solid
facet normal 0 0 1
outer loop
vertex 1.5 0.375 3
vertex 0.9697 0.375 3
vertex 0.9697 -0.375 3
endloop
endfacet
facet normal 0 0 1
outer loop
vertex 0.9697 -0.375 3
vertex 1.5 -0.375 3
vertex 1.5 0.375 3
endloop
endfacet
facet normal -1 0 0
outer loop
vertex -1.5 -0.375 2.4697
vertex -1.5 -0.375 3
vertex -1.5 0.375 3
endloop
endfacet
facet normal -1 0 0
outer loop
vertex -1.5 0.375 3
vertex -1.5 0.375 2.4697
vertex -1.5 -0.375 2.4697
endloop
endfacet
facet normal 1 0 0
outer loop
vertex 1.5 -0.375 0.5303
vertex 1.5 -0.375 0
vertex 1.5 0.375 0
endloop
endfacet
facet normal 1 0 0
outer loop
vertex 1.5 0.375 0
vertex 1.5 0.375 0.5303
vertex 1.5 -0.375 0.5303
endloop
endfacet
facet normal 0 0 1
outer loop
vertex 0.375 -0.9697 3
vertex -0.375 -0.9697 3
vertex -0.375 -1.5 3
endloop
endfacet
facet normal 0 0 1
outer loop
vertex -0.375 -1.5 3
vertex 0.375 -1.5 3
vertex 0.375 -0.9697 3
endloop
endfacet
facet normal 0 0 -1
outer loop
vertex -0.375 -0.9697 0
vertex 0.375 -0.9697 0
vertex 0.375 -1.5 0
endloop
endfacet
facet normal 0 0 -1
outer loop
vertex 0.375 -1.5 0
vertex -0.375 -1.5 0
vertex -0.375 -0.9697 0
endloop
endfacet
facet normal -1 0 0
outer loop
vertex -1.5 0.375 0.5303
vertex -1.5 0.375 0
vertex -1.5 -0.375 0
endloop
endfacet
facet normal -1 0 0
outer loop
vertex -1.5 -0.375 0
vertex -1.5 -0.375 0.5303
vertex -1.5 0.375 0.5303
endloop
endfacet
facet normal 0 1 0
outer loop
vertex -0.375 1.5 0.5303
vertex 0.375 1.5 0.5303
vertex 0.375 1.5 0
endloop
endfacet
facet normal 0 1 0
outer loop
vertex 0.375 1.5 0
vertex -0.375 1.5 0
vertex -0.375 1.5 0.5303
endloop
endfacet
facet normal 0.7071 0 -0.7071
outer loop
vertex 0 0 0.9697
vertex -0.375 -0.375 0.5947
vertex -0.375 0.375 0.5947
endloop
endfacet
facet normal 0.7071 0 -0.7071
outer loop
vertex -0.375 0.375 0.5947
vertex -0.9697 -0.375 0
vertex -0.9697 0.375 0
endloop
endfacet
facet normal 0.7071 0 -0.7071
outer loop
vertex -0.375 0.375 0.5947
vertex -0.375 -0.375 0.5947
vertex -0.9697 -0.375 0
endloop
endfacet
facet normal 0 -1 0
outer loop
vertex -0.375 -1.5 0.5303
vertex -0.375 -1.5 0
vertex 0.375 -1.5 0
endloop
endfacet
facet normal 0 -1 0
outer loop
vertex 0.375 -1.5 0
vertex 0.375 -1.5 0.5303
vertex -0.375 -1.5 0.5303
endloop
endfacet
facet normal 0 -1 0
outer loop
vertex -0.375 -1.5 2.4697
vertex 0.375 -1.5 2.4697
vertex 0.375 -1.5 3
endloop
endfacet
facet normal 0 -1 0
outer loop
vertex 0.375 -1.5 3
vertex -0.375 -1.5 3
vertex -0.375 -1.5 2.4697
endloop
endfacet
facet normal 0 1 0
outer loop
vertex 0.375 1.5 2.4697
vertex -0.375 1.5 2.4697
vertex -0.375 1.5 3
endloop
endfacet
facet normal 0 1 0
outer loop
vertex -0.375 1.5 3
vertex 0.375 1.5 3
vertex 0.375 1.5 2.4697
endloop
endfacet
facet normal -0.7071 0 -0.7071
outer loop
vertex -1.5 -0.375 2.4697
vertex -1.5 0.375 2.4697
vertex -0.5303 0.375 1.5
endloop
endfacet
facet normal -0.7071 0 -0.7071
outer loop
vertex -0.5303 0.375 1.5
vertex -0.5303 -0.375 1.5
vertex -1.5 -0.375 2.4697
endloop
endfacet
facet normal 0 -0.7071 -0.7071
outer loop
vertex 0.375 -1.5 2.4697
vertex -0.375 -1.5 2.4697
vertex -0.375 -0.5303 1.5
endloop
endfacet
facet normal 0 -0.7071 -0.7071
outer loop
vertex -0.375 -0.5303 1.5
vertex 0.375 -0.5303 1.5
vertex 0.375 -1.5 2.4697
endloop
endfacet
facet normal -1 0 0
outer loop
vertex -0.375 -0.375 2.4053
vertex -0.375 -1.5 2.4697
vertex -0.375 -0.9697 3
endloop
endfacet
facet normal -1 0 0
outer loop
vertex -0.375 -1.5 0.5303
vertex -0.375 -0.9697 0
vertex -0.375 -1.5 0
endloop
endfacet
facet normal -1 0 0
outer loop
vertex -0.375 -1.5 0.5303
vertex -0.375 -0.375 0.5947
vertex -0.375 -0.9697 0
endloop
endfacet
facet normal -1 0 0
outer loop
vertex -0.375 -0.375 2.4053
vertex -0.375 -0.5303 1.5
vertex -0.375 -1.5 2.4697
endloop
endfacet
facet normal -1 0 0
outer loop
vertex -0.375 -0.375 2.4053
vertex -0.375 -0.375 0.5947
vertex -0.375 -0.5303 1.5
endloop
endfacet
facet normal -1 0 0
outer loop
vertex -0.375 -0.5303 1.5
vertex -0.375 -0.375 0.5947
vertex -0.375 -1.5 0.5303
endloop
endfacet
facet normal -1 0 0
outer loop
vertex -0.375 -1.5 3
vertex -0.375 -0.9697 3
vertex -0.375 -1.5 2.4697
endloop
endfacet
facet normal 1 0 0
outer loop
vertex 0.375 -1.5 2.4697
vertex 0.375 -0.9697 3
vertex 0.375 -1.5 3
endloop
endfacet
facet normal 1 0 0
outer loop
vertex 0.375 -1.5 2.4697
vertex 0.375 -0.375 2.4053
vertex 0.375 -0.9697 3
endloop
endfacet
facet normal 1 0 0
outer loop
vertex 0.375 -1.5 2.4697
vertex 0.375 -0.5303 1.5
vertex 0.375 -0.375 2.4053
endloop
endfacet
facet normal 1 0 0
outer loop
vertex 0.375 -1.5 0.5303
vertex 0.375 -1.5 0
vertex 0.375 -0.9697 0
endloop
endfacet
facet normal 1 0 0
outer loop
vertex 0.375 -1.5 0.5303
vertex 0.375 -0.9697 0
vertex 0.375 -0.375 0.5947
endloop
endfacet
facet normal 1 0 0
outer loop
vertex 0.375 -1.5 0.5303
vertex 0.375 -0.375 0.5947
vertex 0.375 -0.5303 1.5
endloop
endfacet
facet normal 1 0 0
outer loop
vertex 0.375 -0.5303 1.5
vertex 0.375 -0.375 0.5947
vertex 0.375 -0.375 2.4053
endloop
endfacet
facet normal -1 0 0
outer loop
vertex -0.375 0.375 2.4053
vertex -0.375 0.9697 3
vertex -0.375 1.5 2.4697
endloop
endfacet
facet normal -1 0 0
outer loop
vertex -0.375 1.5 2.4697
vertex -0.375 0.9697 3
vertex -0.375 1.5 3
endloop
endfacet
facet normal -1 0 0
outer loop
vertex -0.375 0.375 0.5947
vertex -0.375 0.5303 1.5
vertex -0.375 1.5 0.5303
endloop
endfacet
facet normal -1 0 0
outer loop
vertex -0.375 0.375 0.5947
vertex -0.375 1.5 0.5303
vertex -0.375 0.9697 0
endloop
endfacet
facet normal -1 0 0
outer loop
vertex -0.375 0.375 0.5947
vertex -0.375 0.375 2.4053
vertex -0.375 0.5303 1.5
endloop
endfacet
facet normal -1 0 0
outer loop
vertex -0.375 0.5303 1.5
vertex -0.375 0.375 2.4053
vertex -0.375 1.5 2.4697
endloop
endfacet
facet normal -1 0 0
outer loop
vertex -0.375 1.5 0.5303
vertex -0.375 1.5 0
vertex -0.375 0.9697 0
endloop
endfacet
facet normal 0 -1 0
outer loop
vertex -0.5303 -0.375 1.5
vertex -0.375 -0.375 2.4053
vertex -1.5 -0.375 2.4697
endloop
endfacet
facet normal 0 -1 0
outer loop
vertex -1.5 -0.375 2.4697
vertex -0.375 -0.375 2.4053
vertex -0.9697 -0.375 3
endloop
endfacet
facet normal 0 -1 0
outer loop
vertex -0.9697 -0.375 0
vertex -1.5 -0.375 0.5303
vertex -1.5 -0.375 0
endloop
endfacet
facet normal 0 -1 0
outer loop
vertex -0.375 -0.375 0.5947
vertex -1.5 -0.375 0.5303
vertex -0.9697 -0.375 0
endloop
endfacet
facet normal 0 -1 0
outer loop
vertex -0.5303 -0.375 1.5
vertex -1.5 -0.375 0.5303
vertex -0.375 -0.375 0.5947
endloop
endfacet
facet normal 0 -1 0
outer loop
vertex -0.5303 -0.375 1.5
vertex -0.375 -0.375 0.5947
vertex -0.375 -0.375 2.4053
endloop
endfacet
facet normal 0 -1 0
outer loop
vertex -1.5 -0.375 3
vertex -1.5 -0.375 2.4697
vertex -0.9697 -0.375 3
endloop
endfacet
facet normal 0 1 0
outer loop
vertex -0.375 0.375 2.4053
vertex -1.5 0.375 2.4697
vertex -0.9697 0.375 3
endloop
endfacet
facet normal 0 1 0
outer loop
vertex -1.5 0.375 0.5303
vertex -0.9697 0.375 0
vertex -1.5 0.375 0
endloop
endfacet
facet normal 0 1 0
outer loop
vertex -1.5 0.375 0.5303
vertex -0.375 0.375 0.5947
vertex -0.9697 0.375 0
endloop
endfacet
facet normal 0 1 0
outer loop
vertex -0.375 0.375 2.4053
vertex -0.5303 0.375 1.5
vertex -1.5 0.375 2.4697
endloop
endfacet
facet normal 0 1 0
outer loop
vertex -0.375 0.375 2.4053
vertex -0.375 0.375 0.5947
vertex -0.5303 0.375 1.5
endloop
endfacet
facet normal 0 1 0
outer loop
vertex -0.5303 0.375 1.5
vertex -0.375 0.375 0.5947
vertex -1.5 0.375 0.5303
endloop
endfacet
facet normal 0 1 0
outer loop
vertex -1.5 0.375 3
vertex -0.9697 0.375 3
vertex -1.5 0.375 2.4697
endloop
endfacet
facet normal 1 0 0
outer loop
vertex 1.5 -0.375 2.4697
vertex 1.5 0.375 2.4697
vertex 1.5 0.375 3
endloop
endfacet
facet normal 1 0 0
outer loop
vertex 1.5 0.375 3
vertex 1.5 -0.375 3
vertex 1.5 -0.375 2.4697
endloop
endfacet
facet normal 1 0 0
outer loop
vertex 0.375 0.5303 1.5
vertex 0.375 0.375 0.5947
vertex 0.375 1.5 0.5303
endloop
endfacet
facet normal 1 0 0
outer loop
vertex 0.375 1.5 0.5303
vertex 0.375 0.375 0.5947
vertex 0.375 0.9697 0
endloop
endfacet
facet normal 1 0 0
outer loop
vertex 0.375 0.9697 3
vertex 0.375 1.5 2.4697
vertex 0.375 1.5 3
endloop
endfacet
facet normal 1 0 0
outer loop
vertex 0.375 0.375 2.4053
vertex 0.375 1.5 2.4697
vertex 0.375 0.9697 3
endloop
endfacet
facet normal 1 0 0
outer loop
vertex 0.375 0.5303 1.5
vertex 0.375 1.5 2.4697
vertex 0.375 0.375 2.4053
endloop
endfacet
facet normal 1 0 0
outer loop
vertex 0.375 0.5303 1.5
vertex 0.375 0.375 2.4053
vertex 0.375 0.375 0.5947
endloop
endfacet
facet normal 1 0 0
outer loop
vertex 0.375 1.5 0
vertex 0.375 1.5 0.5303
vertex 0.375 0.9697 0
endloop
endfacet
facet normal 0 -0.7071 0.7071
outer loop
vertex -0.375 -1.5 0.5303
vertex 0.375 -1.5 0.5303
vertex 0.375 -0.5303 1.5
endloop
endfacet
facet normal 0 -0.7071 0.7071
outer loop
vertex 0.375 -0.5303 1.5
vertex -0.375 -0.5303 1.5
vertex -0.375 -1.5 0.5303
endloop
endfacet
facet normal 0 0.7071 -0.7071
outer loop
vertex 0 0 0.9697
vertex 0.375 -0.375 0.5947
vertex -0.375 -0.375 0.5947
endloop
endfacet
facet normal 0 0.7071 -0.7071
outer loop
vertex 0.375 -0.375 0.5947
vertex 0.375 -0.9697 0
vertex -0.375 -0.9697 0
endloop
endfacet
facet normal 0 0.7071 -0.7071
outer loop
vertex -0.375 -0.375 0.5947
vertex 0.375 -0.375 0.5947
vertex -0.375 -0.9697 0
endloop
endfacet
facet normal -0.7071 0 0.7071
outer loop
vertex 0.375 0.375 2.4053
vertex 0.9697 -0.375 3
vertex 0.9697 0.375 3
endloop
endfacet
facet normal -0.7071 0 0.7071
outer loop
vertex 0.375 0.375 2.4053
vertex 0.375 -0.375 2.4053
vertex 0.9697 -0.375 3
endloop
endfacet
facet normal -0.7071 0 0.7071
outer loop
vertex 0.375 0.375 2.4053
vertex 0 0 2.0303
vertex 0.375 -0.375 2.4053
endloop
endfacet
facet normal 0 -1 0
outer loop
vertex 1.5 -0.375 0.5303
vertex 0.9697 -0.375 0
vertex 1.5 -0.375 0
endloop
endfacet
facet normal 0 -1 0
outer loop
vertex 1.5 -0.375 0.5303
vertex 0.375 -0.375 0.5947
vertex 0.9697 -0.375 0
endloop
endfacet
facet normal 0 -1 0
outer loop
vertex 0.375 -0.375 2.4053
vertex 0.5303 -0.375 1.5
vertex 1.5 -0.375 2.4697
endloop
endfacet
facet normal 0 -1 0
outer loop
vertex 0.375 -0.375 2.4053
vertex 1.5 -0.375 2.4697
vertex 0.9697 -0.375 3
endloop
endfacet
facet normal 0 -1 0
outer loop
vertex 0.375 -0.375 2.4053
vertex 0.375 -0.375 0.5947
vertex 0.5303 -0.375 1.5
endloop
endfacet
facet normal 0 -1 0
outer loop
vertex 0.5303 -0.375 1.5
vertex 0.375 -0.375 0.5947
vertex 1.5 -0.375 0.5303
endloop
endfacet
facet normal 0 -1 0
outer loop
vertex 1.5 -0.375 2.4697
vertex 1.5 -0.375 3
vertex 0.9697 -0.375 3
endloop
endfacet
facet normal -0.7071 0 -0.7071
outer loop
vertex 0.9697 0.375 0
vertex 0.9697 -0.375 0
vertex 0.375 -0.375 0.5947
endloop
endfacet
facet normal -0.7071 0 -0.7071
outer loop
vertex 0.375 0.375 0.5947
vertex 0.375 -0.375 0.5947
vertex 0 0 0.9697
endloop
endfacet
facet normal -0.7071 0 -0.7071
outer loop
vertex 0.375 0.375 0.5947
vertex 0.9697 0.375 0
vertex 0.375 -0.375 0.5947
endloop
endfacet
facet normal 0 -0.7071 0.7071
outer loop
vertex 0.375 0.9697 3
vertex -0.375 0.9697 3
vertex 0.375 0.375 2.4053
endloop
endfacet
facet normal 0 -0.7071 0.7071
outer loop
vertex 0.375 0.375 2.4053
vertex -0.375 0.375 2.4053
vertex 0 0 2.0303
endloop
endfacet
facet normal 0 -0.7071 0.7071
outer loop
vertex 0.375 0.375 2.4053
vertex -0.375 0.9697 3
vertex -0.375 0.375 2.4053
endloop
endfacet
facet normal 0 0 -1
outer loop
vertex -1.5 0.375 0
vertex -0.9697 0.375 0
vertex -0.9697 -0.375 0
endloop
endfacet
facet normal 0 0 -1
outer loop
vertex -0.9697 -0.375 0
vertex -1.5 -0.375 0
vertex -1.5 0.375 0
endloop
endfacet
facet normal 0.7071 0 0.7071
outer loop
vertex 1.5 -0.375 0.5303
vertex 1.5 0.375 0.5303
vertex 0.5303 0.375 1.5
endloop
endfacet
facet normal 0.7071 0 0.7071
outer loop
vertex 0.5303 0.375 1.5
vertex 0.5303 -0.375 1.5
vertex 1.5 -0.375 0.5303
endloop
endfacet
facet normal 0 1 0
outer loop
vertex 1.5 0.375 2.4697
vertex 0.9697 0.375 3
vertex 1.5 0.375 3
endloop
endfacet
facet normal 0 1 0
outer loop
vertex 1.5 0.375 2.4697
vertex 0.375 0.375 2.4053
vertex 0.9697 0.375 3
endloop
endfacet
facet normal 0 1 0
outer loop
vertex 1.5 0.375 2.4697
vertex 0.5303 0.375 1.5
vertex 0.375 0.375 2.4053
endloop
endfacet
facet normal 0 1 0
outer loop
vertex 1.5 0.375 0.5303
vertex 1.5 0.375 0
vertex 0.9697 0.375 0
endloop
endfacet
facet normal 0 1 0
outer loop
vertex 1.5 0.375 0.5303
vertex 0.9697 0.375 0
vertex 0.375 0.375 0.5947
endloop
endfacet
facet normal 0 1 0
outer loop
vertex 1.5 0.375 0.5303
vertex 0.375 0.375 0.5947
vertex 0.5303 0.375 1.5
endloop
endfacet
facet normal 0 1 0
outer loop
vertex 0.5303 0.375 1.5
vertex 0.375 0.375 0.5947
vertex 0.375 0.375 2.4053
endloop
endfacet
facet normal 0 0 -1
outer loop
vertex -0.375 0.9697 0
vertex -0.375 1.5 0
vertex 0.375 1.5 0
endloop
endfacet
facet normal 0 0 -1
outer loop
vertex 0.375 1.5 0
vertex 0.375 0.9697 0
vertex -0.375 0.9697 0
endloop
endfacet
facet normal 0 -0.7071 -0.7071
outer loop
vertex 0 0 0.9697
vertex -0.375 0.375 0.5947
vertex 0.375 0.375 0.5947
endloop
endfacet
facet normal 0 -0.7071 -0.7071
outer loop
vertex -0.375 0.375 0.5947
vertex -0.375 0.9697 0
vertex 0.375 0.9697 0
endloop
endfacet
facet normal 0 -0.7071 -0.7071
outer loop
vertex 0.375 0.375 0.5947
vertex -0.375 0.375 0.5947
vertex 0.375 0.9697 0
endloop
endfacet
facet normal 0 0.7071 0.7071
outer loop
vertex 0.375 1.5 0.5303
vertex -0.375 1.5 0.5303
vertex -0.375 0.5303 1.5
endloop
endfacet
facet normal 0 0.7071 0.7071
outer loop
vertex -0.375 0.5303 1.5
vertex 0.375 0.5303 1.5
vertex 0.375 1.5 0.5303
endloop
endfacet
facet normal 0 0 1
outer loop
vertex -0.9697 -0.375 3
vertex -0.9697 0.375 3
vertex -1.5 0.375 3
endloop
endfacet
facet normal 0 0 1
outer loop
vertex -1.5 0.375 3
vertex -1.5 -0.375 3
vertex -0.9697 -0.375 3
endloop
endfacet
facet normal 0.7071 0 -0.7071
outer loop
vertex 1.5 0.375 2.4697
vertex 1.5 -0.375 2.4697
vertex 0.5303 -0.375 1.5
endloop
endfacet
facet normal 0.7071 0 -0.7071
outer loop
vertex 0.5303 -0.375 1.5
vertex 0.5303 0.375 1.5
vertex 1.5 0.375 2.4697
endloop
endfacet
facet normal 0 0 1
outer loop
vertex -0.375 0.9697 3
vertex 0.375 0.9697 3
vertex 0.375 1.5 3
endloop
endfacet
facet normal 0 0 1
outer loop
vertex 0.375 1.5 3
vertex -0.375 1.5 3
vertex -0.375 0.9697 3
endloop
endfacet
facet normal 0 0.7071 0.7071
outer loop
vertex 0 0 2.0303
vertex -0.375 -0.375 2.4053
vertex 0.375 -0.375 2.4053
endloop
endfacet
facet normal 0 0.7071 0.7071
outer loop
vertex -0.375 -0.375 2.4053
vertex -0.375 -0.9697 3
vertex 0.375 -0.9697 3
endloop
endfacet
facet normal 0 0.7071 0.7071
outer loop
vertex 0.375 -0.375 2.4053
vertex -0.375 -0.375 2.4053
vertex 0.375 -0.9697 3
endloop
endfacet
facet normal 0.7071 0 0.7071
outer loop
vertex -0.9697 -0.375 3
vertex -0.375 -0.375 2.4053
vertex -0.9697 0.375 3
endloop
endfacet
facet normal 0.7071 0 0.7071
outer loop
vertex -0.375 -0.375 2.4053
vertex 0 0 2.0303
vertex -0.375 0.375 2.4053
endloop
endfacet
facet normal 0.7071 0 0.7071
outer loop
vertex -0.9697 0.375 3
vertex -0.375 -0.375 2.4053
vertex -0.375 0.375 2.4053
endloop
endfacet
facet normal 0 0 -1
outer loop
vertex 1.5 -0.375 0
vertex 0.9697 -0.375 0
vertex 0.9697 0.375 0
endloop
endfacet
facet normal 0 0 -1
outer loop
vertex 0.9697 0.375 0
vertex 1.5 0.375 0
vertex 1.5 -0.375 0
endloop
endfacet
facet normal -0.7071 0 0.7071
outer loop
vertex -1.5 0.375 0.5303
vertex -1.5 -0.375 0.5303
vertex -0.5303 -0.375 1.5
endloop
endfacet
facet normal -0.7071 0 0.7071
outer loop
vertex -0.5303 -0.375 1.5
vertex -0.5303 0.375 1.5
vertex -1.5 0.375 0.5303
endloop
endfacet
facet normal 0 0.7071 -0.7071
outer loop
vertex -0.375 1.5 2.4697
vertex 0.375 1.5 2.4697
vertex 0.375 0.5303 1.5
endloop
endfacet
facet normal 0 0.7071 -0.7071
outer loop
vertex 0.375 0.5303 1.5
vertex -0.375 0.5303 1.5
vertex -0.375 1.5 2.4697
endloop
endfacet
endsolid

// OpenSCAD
// 3D Multiplication for Stacks of Shapes
// Copyright Slashee the Cow
x_thickness = 0.75;

color("Gold")
translate([0,0,1.5])
intersection(){
    cube(3, center=true);
    //translate([-0.5,0.5,2.5])
    union(){
    rotate([0,45,0])
        cube([5,x_thickness,x_thickness], center=true);
    rotate([0,-45,0])
        cube([5,x_thickness,x_thickness], center=true);
     rotate([0,45,90])
        cube([5,x_thickness,x_thickness], center=true);
    rotate([0,-45,90])
        cube([5,x_thickness,x_thickness], center=true);
     }
     
}
